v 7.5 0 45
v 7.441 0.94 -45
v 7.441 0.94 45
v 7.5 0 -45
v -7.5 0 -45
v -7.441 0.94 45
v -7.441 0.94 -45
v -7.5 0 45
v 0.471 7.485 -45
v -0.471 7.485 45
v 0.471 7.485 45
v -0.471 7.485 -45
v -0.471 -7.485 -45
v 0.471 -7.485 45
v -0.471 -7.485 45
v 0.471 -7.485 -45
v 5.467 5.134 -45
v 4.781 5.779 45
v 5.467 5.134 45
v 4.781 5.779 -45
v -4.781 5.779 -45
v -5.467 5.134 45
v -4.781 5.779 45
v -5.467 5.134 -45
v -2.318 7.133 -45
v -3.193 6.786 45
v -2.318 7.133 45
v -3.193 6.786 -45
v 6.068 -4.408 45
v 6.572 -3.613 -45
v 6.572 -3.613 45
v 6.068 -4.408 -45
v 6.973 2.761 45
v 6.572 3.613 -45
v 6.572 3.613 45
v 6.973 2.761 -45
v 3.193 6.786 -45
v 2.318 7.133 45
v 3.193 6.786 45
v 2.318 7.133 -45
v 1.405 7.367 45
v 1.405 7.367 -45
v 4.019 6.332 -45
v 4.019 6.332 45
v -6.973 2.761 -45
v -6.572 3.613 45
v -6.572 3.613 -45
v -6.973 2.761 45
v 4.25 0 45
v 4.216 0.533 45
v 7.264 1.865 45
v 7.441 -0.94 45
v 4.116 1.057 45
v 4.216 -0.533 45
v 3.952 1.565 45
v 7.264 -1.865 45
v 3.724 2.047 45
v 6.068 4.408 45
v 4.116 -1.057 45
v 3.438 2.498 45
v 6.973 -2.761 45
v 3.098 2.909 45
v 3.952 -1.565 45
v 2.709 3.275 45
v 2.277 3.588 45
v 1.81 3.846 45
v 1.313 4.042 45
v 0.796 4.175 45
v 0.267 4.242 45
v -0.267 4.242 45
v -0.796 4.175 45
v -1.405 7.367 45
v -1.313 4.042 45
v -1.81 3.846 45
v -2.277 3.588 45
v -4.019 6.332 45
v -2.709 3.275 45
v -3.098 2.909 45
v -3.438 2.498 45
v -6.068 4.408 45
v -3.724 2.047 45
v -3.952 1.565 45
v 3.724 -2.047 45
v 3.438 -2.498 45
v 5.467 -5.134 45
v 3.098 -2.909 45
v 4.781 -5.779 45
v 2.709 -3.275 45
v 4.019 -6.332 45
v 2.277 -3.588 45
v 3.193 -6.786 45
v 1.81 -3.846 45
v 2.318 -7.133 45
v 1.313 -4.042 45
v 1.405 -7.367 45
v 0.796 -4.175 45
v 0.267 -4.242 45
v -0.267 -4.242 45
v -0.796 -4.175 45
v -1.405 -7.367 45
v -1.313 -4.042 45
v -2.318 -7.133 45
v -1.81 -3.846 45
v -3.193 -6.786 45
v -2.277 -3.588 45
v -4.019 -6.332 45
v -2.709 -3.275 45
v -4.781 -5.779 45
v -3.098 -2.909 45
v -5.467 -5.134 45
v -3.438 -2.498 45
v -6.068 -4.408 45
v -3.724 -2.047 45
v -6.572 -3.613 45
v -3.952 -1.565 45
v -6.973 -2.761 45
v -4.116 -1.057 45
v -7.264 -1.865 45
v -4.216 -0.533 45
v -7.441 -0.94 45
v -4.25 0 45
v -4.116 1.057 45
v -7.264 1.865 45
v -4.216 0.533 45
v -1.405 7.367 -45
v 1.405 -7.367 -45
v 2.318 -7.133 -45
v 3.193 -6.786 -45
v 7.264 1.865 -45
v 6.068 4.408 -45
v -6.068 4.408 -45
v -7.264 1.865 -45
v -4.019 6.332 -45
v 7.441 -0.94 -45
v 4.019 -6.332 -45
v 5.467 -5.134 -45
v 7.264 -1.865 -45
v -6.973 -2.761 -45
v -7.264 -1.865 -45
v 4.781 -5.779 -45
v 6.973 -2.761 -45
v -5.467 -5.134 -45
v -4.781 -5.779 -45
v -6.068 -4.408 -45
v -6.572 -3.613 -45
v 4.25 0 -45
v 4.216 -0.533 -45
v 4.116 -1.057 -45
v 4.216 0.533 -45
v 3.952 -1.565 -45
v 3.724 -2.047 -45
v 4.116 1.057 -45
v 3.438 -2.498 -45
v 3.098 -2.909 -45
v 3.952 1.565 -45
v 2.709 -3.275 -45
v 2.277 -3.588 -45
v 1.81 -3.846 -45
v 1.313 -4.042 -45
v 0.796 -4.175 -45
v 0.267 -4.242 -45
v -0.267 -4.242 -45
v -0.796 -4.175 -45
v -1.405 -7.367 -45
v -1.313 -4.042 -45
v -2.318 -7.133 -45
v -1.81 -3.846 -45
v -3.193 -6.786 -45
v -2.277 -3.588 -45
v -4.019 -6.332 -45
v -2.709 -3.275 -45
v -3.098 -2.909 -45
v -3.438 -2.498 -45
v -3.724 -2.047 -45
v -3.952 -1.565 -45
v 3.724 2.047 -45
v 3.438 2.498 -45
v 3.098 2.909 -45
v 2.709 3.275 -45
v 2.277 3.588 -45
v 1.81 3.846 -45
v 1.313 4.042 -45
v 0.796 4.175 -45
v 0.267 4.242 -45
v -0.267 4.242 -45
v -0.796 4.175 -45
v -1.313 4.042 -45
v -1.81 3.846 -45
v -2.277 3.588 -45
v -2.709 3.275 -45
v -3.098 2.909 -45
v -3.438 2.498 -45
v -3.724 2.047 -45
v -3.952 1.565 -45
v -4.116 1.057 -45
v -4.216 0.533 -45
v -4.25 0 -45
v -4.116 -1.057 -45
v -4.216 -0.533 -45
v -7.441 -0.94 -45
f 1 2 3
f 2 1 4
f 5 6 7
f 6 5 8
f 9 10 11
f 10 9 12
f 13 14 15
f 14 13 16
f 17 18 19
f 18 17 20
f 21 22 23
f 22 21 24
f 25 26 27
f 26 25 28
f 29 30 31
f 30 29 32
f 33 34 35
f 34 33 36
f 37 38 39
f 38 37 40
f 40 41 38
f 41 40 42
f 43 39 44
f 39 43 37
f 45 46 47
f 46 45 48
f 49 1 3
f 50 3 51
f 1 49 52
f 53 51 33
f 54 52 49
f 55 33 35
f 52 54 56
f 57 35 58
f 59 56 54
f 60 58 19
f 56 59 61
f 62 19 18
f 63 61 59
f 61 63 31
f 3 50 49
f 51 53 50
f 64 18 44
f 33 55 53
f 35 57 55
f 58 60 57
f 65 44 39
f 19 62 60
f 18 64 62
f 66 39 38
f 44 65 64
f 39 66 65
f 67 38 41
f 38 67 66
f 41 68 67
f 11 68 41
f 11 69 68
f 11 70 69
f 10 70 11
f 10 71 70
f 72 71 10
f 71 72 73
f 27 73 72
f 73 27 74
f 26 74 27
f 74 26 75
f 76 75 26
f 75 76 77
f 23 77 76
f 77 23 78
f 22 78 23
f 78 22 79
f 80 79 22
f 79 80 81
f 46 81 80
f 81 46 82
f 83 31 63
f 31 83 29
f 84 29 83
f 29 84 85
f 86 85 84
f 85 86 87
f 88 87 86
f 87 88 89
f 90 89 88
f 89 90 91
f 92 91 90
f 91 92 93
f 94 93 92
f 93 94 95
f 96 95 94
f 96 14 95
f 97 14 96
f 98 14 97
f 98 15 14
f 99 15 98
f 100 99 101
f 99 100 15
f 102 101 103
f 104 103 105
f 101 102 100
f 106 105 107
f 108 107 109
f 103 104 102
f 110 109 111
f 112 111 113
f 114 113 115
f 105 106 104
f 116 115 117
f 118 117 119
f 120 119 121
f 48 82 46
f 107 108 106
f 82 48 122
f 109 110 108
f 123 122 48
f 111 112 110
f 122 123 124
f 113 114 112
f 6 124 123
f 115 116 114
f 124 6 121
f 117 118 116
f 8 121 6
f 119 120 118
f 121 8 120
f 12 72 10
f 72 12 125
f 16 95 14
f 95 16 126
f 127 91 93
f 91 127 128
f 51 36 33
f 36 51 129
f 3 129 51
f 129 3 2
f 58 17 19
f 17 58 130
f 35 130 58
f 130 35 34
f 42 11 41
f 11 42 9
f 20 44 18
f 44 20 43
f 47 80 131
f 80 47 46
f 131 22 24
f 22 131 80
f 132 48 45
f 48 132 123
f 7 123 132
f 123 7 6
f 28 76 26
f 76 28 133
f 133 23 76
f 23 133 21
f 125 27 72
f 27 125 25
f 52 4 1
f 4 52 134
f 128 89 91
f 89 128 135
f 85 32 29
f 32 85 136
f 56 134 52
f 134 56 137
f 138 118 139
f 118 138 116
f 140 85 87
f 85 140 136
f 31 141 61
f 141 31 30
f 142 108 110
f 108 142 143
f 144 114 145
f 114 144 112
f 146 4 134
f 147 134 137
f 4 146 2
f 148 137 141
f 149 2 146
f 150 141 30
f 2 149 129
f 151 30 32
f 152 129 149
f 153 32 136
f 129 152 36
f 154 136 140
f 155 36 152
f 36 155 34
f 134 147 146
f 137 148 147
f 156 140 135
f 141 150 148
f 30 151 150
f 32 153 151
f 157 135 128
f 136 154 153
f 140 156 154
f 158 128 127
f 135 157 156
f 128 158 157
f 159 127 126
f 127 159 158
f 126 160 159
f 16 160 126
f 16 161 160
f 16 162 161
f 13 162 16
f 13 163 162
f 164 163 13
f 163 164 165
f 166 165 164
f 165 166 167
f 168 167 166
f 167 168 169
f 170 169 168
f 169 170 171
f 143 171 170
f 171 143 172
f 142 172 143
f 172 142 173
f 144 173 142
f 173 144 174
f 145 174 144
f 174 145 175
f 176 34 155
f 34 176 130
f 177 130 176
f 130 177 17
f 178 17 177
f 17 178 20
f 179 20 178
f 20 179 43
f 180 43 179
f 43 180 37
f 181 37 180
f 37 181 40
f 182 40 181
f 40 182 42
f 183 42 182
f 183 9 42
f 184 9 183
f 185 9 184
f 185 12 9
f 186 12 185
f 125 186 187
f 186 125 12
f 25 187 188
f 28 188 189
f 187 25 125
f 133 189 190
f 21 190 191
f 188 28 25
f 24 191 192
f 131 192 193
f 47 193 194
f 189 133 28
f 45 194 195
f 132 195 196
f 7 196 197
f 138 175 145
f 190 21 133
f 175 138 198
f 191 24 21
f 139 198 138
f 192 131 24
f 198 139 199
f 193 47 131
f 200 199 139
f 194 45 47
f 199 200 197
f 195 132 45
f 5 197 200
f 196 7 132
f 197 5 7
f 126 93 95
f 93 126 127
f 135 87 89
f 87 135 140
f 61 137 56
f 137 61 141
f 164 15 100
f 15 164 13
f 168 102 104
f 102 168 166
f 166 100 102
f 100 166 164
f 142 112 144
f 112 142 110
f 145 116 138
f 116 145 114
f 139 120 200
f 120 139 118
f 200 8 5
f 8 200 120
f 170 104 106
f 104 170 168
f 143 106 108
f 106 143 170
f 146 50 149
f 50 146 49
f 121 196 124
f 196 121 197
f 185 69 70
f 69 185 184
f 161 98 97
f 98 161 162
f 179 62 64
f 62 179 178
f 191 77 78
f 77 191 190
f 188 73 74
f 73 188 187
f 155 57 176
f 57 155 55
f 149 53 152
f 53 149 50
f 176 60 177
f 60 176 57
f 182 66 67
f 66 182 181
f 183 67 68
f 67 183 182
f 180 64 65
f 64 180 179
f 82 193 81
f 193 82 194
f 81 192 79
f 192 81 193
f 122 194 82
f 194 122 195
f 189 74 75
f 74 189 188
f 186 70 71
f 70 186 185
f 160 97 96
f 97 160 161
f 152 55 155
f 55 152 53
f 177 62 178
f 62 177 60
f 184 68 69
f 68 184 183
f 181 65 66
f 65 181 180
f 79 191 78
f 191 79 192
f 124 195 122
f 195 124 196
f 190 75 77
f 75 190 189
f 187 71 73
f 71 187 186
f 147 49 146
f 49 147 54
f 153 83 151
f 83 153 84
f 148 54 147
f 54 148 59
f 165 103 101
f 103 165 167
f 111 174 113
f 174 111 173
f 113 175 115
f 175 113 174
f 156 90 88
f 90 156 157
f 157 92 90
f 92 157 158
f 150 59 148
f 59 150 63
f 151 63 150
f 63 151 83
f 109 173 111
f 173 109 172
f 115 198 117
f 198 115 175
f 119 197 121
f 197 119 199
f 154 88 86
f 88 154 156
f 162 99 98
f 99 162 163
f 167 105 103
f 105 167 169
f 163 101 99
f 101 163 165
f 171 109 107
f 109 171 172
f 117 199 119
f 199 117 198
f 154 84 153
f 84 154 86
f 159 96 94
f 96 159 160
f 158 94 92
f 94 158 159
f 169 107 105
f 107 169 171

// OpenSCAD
$fn = 50;


difference() {
	union() {
		translate(v = [0, 0, -45.0000000000]) {
			cylinder(h = 90, r = 7.5000000000);
		}
	}
	union() {
		translate(v = [0, 0, -100.0000000000]) {
			cylinder(h = 200, r = 4.2500000000);
		}
	}
}
